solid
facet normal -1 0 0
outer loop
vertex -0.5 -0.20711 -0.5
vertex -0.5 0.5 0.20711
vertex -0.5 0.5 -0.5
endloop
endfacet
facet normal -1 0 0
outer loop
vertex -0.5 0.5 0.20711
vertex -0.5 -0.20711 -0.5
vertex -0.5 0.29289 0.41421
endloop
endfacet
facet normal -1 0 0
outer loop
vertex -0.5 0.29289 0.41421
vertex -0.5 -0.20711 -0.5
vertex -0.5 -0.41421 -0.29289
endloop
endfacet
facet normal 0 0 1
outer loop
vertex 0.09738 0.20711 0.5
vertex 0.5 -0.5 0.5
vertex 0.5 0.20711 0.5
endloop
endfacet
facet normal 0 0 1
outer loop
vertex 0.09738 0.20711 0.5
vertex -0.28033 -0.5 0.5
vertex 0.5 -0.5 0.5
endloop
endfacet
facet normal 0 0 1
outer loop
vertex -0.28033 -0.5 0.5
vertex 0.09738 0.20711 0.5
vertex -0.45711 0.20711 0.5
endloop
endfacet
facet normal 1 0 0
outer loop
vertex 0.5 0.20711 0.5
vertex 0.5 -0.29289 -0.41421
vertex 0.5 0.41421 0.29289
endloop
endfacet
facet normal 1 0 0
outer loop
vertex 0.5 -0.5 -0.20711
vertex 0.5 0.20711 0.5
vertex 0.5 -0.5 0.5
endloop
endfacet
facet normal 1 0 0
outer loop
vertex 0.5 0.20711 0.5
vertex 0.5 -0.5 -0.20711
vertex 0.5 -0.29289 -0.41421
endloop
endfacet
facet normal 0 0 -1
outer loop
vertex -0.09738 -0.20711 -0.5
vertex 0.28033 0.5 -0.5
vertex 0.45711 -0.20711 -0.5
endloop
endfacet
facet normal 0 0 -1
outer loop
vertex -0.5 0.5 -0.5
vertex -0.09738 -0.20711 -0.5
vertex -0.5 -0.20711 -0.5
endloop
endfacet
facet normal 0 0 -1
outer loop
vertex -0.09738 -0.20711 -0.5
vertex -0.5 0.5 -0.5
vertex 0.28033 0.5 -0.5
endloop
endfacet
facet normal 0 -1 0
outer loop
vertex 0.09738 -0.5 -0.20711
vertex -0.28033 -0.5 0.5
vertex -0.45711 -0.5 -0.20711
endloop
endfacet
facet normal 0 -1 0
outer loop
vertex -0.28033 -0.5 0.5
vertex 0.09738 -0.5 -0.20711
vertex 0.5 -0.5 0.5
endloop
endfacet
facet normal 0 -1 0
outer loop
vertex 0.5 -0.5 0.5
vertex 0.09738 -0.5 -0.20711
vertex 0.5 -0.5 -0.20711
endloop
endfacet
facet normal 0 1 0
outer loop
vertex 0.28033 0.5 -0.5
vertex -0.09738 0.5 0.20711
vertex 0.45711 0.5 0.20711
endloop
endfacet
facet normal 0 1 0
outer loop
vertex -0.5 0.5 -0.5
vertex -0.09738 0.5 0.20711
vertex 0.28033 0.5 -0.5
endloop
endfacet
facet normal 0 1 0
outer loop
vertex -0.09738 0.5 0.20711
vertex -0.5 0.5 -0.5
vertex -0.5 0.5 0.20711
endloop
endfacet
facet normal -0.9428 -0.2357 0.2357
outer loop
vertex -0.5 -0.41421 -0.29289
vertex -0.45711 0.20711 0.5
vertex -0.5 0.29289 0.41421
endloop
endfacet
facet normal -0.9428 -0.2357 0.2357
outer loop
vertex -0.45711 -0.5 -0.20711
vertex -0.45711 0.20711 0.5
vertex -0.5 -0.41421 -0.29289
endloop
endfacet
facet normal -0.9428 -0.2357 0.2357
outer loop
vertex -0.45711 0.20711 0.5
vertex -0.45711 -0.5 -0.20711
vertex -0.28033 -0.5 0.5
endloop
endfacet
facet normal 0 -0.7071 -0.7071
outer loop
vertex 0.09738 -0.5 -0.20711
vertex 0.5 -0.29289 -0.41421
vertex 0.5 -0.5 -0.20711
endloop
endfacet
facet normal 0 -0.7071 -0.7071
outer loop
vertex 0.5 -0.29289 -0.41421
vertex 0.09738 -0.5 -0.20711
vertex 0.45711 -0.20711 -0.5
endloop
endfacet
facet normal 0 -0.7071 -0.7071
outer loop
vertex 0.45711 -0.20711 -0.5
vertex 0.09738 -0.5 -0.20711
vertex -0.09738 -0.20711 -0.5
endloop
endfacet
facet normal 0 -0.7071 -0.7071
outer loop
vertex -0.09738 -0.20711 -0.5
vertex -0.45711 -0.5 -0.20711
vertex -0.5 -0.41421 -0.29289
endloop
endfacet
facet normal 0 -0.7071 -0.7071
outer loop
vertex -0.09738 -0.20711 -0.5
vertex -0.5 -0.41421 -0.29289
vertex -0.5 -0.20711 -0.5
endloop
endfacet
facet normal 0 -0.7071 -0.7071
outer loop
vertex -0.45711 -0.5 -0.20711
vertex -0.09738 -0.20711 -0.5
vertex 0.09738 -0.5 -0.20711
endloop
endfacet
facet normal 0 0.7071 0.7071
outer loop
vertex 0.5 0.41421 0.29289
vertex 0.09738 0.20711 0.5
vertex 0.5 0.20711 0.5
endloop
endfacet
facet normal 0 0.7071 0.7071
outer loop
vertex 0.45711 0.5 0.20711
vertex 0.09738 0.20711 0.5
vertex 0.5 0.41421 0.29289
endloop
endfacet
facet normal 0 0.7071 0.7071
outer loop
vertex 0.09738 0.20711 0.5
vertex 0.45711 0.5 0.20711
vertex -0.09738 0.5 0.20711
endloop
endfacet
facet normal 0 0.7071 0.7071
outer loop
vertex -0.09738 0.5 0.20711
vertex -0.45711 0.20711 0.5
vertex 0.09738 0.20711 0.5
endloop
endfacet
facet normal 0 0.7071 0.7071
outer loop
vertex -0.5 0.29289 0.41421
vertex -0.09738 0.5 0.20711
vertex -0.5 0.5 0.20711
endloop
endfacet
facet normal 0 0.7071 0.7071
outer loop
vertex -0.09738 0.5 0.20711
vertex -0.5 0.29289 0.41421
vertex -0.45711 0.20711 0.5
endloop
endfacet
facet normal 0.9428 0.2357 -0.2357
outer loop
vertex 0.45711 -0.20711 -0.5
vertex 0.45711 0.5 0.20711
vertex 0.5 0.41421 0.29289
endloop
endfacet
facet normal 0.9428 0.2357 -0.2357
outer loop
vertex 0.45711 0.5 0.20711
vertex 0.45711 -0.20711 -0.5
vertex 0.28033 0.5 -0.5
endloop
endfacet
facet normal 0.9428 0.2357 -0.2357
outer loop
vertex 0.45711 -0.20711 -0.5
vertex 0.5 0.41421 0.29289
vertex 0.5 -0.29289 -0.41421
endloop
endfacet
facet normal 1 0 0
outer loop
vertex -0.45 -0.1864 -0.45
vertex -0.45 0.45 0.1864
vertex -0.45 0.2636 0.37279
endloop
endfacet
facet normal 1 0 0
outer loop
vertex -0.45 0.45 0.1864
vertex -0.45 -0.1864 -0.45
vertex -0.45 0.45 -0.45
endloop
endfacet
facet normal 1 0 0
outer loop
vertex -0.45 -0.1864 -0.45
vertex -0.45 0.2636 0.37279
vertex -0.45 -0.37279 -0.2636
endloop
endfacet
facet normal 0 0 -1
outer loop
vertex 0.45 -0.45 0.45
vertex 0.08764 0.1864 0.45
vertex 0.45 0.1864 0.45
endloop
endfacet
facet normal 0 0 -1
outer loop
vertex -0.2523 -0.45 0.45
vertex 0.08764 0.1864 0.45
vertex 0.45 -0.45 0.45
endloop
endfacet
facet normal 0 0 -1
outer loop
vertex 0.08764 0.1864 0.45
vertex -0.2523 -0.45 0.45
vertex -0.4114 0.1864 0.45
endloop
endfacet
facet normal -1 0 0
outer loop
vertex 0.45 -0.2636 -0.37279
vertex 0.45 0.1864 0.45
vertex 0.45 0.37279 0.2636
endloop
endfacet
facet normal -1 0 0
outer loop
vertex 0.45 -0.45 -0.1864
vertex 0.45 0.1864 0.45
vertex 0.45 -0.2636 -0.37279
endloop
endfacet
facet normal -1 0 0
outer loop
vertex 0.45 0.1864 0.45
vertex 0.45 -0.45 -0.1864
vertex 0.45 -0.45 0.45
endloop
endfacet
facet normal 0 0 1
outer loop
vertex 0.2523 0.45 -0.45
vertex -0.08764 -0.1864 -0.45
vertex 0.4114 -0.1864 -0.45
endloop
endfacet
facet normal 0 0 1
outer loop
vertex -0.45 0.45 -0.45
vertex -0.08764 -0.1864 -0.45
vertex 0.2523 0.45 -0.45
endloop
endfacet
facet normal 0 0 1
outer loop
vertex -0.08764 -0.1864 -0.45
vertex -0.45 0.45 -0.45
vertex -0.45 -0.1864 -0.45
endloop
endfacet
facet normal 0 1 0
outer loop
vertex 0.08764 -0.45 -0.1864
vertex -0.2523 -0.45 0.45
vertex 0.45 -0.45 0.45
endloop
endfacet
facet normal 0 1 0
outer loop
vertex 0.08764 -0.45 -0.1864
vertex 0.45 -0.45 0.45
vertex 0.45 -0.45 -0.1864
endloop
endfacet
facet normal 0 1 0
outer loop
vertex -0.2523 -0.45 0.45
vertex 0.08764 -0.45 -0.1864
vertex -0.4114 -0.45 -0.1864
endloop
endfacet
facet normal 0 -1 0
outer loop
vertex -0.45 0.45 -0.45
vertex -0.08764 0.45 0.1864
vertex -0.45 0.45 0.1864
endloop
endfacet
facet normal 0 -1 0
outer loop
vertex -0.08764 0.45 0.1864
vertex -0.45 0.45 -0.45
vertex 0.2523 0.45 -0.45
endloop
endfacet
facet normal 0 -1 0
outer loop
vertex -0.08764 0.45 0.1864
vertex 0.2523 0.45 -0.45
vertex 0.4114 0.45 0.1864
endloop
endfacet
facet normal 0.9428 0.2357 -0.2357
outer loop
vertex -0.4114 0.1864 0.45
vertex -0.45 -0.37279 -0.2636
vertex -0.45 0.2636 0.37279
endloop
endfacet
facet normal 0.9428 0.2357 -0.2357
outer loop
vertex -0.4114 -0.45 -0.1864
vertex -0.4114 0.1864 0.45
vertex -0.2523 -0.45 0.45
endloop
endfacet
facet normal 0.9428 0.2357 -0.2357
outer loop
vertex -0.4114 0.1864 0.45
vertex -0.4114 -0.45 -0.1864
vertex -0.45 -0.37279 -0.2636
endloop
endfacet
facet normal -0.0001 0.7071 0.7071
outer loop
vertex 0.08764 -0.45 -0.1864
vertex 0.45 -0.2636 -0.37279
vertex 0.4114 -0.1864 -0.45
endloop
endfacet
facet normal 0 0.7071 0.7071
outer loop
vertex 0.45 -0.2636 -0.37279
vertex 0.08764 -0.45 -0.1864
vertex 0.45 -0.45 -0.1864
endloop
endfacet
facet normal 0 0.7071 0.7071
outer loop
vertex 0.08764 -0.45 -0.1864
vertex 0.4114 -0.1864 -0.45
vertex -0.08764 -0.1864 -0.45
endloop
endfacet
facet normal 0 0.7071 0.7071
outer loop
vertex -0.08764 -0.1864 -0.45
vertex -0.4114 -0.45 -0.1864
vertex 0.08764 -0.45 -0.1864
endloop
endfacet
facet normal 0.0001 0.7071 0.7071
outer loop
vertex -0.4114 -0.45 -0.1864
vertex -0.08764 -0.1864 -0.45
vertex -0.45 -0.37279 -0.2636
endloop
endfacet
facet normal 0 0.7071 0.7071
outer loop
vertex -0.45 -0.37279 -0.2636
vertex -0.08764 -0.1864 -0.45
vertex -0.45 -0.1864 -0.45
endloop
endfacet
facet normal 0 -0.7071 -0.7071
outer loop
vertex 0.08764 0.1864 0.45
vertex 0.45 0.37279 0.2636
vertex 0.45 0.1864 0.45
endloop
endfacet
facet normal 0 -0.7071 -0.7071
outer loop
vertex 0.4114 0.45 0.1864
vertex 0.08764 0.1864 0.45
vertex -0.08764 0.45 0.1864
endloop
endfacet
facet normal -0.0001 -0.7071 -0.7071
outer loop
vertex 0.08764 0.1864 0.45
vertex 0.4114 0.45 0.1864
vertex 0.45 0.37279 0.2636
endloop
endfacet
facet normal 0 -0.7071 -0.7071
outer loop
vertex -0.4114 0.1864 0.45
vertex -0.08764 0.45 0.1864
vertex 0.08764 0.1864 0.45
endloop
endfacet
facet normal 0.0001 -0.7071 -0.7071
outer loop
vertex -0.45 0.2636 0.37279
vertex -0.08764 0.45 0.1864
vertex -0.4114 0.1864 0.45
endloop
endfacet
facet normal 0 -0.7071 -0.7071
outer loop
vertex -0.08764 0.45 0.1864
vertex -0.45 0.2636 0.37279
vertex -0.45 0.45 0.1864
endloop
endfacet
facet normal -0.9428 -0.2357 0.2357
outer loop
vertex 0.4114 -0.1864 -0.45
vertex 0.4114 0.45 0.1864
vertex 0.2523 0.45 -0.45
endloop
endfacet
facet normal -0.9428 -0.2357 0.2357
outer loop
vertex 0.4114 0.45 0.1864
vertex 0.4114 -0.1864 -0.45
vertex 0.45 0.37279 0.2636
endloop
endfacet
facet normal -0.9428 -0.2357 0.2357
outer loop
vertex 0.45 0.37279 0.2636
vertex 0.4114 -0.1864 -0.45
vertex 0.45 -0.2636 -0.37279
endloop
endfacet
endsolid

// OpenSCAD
difference(){intersection(){
translate([-.5,-.5,-.5])
cube(1,1,1);
rotate(19.4712206344907,[0,1,1])
rotate(45,[1,0,0])
translate([-.5,-.5,-5])
cube([1.00,1.00,10],center=[0,0,0]);}
scale([.9,.9,.9]){intersection(){
translate([-.5,-.5,-.5])
cube(1,1,1);
rotate(19.4712206344907,[0,1,1])
rotate(45,[1,0,0])
translate([-.5,-.5,-5])
cube([1.00,1.00,10],center=[0,0,0]);}}}
